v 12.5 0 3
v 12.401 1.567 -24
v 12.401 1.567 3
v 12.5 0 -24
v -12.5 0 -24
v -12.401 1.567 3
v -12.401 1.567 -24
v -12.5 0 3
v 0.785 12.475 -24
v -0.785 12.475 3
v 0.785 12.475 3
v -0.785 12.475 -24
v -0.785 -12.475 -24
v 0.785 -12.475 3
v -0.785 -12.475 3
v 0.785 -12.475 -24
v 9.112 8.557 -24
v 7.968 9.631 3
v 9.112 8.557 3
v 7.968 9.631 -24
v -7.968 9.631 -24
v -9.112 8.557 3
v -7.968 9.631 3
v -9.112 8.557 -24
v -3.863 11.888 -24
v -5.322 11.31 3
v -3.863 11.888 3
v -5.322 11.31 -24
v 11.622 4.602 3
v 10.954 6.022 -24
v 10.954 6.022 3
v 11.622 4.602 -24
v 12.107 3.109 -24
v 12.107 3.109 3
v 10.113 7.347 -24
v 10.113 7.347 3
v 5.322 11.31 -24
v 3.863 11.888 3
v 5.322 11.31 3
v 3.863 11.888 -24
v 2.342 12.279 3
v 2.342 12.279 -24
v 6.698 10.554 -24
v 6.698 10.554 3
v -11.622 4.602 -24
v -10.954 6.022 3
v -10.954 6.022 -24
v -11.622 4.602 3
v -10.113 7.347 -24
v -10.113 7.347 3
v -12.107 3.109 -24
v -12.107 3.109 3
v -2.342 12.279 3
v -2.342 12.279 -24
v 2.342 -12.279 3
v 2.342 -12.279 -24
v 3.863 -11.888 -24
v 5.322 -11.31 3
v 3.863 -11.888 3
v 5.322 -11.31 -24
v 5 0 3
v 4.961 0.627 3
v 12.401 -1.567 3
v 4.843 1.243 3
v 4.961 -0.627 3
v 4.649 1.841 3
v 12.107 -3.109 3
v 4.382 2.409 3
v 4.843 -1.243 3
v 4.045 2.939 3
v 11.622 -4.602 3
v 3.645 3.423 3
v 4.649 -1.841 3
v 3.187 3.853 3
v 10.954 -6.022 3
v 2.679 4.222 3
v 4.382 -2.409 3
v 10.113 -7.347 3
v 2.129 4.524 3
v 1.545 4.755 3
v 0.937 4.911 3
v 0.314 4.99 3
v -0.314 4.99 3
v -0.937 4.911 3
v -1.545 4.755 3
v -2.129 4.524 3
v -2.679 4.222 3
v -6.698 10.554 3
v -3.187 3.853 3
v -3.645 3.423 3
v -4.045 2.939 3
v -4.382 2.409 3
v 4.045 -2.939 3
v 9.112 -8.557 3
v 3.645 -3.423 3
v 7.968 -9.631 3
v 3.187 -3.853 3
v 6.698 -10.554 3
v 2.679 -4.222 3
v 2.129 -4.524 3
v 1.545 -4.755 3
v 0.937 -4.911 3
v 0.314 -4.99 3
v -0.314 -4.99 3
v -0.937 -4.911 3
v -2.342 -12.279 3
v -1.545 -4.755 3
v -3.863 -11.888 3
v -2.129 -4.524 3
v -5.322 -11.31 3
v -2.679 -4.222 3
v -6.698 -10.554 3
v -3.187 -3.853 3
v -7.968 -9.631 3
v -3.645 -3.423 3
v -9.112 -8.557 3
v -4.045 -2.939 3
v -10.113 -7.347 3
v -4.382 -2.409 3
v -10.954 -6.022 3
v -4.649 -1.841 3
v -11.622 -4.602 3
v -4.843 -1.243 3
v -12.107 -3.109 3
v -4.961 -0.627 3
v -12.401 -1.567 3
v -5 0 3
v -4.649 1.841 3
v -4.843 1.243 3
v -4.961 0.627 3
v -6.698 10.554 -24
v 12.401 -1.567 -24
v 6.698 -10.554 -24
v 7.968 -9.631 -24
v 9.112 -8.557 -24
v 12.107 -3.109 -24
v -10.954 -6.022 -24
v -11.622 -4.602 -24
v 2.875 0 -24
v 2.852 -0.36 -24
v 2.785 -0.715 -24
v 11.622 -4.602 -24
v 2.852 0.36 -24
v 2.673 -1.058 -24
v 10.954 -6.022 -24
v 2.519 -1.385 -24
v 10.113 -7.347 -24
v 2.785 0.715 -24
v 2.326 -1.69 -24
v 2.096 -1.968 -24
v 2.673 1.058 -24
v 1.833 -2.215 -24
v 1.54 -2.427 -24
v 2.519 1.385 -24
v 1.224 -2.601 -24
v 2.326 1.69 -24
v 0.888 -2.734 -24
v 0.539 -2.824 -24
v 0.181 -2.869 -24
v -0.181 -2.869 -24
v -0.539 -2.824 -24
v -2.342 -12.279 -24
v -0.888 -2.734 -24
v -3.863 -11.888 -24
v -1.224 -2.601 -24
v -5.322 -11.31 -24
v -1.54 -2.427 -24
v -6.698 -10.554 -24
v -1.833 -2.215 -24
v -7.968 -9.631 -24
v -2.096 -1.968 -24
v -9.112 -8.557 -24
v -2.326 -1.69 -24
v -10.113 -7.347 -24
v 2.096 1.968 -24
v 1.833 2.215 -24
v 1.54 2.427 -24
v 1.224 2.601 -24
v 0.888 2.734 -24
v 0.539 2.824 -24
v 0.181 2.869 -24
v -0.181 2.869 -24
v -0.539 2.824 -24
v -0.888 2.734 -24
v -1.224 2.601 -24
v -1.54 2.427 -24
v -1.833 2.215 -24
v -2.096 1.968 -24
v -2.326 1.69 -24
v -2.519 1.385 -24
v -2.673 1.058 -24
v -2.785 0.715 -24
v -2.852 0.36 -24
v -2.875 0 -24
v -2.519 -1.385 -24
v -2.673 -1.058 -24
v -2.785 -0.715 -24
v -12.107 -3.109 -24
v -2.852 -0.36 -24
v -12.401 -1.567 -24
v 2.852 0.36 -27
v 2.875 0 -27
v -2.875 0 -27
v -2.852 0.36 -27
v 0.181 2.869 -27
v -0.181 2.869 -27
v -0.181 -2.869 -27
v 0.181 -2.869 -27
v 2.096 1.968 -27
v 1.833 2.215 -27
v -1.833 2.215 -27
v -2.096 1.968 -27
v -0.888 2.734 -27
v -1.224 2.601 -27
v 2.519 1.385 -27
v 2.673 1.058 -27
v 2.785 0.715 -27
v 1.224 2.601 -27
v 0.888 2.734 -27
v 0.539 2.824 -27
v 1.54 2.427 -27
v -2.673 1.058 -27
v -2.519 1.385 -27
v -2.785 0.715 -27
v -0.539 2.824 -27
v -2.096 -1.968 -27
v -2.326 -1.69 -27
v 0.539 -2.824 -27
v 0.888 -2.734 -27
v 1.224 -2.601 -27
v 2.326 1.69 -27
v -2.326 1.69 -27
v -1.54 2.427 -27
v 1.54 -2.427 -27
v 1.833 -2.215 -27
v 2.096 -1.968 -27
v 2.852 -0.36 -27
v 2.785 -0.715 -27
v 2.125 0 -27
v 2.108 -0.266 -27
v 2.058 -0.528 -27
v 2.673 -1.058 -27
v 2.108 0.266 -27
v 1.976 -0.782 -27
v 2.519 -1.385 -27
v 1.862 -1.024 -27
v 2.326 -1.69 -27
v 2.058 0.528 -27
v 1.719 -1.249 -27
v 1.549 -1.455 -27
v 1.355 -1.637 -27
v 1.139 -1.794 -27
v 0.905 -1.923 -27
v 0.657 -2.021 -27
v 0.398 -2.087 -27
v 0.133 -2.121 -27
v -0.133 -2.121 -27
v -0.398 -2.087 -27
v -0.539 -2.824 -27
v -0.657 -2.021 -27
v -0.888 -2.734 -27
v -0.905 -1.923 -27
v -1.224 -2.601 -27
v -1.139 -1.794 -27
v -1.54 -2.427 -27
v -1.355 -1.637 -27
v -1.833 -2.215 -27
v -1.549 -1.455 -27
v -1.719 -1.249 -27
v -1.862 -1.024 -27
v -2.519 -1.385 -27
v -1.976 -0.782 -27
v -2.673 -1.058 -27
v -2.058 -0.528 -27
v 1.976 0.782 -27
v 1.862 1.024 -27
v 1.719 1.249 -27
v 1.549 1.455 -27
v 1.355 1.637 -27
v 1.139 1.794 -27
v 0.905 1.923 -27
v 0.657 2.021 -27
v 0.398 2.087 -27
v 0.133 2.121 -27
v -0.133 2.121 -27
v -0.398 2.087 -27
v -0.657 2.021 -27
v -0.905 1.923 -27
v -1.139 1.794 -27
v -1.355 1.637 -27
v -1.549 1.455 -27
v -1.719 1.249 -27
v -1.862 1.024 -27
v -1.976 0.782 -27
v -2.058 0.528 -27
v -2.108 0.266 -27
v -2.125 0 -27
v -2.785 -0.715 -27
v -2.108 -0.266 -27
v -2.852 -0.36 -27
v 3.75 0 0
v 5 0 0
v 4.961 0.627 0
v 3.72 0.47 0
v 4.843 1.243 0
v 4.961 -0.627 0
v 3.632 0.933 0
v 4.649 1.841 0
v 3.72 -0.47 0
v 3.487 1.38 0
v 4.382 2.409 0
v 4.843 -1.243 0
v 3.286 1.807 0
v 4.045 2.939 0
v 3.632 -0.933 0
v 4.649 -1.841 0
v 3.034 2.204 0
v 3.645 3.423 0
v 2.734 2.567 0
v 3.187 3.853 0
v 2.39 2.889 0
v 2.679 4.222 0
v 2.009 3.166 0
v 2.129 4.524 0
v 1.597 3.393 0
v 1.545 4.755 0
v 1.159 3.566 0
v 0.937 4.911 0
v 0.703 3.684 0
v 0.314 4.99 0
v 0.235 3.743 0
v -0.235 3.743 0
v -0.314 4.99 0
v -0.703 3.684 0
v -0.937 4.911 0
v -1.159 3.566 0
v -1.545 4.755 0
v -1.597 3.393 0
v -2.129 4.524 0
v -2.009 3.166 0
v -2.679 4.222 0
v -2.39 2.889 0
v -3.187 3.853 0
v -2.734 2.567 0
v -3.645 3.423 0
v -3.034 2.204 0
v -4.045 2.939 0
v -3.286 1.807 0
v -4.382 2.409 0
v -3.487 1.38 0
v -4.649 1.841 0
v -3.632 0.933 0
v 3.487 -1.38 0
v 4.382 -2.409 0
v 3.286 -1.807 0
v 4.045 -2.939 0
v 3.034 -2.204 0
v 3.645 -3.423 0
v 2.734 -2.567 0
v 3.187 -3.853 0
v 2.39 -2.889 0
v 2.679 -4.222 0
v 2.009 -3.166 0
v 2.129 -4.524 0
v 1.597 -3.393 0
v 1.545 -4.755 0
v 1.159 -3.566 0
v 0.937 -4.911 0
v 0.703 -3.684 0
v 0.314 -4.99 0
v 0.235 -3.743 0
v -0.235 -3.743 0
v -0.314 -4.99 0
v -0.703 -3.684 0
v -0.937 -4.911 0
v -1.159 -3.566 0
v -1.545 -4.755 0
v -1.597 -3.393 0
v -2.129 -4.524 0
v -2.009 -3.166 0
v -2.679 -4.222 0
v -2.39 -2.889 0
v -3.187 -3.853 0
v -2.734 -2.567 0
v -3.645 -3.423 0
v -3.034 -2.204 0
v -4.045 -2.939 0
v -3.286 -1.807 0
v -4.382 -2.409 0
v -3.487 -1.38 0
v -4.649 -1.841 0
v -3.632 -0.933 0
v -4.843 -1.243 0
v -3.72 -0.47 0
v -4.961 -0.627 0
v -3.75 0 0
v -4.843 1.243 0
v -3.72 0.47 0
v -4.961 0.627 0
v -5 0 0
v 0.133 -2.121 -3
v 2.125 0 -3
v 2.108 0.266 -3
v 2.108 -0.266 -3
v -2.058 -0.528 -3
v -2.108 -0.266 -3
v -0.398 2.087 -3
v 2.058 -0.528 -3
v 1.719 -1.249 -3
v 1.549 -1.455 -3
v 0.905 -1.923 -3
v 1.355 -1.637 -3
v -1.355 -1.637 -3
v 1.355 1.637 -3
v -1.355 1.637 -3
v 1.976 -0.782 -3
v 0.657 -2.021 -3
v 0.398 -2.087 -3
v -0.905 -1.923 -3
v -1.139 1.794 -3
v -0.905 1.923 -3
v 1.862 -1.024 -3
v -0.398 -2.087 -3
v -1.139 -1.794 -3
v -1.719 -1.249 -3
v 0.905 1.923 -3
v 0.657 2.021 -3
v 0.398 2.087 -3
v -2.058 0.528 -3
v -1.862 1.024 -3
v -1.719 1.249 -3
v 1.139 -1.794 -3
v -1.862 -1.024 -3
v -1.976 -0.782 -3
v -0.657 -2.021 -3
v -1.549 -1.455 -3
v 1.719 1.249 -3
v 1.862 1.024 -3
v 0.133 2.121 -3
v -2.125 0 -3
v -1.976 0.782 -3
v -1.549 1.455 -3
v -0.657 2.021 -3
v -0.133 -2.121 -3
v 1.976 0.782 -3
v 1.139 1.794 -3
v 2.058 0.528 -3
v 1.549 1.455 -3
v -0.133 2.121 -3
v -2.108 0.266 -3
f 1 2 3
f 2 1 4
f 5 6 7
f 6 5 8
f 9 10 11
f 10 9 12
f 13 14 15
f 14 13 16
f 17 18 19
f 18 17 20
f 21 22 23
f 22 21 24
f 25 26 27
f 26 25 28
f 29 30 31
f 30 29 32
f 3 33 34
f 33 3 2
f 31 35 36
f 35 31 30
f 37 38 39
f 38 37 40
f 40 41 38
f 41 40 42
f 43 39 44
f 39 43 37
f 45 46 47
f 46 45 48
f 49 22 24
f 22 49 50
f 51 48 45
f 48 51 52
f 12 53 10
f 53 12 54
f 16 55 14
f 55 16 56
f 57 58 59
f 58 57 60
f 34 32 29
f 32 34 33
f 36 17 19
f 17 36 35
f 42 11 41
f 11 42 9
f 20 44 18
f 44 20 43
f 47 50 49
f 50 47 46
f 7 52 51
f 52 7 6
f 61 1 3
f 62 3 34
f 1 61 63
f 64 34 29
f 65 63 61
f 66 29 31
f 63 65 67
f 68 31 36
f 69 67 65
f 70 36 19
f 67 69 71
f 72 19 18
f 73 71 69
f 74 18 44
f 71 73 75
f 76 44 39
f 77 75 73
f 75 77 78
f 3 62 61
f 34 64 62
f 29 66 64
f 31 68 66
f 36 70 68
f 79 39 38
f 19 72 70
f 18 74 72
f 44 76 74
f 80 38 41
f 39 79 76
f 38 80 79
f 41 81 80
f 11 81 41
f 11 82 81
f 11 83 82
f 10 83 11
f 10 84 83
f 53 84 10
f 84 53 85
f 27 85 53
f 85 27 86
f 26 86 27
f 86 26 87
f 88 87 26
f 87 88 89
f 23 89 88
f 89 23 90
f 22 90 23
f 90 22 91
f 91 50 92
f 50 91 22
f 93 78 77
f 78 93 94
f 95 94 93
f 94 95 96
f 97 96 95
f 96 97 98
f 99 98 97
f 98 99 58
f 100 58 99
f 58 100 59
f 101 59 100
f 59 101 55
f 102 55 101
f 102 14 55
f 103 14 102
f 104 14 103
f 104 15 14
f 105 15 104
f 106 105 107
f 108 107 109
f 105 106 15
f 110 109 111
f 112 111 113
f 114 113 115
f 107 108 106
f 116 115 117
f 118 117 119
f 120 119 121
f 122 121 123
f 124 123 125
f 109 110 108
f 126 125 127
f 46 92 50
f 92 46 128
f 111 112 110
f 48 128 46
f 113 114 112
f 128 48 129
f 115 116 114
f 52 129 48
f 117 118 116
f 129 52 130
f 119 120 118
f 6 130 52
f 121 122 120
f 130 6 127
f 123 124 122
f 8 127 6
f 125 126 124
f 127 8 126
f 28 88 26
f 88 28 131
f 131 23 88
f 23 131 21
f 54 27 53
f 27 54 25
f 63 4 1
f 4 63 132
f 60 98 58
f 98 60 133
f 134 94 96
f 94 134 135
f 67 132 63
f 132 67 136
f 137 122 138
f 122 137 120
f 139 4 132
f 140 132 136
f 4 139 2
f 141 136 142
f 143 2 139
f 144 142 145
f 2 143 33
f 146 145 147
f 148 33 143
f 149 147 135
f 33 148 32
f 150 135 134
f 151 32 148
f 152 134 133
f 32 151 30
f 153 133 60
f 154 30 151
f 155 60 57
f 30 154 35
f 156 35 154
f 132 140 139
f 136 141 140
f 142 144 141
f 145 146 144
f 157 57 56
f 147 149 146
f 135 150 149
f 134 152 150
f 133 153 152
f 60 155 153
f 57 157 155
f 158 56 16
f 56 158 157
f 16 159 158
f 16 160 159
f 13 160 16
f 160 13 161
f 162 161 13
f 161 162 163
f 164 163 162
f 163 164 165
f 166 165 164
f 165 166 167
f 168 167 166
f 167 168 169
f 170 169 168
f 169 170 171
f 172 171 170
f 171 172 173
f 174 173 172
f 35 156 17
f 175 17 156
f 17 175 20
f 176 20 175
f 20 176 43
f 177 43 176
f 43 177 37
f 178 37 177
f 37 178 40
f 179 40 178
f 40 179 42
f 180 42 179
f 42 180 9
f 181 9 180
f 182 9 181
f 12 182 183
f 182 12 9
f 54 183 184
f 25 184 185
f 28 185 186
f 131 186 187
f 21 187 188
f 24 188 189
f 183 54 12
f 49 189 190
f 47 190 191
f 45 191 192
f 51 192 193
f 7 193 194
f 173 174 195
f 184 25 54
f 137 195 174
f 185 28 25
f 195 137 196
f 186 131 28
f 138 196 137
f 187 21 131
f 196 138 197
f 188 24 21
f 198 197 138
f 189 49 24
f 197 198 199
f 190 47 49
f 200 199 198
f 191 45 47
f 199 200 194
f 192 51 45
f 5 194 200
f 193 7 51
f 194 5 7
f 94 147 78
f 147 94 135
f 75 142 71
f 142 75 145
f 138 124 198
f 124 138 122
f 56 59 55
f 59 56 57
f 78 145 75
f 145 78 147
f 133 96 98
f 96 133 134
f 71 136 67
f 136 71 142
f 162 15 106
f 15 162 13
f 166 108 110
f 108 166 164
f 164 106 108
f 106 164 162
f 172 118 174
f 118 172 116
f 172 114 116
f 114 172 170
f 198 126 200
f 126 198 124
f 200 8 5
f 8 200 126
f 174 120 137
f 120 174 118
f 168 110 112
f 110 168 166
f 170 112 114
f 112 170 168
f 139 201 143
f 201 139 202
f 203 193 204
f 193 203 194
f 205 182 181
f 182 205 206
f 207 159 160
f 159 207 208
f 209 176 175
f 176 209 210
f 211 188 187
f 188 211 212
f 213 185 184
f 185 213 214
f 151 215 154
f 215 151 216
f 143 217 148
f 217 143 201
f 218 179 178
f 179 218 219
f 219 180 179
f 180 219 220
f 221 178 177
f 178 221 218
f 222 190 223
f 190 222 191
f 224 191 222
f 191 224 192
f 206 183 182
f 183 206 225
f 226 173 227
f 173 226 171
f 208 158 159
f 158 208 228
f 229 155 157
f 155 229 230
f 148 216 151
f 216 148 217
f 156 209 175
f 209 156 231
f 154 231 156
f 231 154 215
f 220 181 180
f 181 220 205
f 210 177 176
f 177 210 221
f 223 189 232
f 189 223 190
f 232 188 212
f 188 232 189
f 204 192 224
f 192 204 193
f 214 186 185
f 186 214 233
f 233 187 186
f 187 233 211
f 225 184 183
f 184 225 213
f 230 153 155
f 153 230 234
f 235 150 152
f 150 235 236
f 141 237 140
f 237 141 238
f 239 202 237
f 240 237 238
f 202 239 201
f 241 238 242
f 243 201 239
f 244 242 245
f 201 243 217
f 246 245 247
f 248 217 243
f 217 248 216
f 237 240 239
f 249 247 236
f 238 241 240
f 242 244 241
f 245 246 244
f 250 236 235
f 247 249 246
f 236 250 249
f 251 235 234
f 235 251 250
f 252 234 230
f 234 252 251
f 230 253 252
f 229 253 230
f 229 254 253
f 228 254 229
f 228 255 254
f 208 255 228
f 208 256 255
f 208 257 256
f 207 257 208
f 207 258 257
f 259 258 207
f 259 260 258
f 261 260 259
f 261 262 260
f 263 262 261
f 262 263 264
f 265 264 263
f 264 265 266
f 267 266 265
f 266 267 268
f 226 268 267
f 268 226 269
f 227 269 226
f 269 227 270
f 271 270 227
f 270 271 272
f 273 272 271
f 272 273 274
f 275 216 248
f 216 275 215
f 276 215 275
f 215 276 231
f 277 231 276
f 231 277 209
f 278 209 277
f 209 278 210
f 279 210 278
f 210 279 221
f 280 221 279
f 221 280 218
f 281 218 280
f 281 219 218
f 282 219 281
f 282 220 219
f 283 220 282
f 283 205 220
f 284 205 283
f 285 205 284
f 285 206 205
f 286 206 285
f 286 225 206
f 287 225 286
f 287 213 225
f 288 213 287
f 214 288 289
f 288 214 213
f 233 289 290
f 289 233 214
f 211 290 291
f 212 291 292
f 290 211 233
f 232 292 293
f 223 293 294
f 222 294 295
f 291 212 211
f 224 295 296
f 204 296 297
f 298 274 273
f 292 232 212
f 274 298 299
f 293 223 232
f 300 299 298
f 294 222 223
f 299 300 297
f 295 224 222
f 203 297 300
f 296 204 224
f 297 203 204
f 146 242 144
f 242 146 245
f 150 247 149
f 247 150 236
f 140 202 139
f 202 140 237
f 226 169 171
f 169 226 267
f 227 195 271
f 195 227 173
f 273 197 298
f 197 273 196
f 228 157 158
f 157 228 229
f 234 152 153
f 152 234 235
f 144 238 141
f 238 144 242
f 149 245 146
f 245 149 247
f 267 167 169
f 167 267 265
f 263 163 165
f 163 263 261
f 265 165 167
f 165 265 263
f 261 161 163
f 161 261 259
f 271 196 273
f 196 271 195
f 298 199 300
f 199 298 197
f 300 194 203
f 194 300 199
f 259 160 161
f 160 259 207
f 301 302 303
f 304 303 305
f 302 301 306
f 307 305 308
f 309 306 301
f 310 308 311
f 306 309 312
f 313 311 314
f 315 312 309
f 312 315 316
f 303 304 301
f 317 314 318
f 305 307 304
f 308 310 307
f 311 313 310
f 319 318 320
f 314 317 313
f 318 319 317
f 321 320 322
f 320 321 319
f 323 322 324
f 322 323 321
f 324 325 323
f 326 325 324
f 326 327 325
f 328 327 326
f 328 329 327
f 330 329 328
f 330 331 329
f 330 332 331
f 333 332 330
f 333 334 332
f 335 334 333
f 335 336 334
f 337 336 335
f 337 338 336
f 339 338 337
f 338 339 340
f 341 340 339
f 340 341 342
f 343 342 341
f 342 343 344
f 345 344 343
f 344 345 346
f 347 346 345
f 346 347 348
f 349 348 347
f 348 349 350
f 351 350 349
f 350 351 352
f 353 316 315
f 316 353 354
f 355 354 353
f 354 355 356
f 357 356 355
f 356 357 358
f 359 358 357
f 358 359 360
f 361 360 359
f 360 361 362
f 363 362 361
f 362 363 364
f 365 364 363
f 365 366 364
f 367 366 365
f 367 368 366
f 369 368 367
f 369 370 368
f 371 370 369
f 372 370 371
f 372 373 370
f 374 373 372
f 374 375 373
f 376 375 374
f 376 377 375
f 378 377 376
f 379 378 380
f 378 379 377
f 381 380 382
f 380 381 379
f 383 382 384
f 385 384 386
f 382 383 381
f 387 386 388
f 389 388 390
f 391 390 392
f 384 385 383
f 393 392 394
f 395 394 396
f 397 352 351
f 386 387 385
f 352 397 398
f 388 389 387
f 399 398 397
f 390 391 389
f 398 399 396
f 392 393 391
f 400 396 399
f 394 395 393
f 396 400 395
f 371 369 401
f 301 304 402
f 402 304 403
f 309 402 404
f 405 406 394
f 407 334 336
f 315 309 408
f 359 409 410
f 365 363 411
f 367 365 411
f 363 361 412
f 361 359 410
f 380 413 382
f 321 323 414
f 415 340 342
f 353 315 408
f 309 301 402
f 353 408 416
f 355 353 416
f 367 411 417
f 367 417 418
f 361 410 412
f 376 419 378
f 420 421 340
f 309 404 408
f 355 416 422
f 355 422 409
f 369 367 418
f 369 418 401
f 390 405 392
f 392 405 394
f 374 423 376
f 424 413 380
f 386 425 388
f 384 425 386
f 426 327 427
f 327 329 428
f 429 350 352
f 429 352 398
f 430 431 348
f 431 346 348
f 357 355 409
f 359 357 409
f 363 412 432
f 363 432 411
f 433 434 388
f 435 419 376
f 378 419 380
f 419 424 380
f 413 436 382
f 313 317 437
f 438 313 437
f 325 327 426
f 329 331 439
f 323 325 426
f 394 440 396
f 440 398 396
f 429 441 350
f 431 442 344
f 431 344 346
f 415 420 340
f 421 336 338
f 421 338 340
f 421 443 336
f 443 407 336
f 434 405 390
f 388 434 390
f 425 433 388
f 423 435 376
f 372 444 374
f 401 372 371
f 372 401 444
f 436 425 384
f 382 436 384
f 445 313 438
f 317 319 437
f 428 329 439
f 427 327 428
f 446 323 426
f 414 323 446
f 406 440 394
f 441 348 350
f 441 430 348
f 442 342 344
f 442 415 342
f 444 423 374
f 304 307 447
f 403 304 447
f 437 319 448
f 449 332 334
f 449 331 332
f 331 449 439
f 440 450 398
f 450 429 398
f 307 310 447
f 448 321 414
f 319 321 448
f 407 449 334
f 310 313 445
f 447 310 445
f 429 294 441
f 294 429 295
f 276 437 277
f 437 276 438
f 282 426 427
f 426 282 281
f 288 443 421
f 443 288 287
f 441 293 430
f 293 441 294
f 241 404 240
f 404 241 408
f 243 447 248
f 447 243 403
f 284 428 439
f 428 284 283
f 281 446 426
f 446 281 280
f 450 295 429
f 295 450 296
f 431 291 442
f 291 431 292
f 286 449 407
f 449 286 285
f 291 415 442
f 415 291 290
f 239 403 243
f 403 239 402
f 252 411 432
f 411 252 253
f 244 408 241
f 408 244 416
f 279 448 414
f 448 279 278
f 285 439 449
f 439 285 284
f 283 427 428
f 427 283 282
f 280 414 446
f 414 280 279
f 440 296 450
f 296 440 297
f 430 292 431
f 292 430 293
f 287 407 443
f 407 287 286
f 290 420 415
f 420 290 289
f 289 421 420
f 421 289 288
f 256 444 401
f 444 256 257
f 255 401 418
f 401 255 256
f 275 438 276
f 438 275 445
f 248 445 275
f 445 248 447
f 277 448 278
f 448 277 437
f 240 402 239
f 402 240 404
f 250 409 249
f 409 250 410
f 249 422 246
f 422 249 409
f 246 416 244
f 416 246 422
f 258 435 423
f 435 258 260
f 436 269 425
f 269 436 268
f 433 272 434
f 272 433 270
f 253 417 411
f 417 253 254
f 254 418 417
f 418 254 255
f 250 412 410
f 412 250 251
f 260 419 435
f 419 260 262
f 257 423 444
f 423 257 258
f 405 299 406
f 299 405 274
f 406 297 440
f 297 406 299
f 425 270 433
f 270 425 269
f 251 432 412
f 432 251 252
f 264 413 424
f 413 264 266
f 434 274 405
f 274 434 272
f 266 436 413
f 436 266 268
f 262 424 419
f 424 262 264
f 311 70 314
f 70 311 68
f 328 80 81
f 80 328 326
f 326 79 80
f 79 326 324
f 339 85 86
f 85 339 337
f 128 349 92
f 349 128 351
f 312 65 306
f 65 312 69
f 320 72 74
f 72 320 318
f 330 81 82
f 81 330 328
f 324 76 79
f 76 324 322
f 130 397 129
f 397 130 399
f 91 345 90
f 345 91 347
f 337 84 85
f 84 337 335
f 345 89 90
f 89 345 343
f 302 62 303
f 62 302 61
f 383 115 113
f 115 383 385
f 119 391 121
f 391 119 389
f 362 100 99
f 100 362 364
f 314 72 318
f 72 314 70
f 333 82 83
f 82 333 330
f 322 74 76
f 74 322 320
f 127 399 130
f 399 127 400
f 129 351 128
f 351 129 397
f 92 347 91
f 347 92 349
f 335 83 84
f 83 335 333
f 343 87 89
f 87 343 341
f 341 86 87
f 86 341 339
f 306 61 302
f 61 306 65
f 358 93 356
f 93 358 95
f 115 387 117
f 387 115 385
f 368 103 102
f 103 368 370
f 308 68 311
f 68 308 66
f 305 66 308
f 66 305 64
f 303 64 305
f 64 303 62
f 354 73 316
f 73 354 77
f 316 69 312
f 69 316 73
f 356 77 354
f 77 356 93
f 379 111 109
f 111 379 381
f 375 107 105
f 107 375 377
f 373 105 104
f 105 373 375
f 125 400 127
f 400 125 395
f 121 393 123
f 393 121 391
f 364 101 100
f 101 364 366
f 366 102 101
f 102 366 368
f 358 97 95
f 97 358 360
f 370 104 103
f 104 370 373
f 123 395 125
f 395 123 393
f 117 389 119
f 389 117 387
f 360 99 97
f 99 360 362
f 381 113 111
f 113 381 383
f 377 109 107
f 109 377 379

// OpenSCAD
$fn = 50;

difference() {
	union() {
		translate(v = [0, 0, -24.0]) {
			cylinder(h = 27, r = 12.5);
		}
		#translate(v = [0, 0, -27.0]) {
			cylinder(h = 27, r = 2.875);
		}
	}
	union() {
		translate(v = [0, 0, 0]) {
			rotate(a = [0, 0, 0]) {
				difference() {
					union() {
						translate(v = [0, 0, -27.0]) {
							cylinder(h = 27, r = 2.0);
						}
						translate(v = [0, 0, -3]) {
							cylinder(h = 3, r1 = 2.125, r2 = 3.75);
						}
						translate(v = [0, 0, -27.0]) {
							cylinder(h = 27, r = 2.125);
						}
						translate(v = [0, 0, -27.0]) {
							cylinder(h = 27, r = 2.0);
						}
					}
					union();
				}
			}
		}
		#cylinder(h = 3, r = 5.0);
	}
}
